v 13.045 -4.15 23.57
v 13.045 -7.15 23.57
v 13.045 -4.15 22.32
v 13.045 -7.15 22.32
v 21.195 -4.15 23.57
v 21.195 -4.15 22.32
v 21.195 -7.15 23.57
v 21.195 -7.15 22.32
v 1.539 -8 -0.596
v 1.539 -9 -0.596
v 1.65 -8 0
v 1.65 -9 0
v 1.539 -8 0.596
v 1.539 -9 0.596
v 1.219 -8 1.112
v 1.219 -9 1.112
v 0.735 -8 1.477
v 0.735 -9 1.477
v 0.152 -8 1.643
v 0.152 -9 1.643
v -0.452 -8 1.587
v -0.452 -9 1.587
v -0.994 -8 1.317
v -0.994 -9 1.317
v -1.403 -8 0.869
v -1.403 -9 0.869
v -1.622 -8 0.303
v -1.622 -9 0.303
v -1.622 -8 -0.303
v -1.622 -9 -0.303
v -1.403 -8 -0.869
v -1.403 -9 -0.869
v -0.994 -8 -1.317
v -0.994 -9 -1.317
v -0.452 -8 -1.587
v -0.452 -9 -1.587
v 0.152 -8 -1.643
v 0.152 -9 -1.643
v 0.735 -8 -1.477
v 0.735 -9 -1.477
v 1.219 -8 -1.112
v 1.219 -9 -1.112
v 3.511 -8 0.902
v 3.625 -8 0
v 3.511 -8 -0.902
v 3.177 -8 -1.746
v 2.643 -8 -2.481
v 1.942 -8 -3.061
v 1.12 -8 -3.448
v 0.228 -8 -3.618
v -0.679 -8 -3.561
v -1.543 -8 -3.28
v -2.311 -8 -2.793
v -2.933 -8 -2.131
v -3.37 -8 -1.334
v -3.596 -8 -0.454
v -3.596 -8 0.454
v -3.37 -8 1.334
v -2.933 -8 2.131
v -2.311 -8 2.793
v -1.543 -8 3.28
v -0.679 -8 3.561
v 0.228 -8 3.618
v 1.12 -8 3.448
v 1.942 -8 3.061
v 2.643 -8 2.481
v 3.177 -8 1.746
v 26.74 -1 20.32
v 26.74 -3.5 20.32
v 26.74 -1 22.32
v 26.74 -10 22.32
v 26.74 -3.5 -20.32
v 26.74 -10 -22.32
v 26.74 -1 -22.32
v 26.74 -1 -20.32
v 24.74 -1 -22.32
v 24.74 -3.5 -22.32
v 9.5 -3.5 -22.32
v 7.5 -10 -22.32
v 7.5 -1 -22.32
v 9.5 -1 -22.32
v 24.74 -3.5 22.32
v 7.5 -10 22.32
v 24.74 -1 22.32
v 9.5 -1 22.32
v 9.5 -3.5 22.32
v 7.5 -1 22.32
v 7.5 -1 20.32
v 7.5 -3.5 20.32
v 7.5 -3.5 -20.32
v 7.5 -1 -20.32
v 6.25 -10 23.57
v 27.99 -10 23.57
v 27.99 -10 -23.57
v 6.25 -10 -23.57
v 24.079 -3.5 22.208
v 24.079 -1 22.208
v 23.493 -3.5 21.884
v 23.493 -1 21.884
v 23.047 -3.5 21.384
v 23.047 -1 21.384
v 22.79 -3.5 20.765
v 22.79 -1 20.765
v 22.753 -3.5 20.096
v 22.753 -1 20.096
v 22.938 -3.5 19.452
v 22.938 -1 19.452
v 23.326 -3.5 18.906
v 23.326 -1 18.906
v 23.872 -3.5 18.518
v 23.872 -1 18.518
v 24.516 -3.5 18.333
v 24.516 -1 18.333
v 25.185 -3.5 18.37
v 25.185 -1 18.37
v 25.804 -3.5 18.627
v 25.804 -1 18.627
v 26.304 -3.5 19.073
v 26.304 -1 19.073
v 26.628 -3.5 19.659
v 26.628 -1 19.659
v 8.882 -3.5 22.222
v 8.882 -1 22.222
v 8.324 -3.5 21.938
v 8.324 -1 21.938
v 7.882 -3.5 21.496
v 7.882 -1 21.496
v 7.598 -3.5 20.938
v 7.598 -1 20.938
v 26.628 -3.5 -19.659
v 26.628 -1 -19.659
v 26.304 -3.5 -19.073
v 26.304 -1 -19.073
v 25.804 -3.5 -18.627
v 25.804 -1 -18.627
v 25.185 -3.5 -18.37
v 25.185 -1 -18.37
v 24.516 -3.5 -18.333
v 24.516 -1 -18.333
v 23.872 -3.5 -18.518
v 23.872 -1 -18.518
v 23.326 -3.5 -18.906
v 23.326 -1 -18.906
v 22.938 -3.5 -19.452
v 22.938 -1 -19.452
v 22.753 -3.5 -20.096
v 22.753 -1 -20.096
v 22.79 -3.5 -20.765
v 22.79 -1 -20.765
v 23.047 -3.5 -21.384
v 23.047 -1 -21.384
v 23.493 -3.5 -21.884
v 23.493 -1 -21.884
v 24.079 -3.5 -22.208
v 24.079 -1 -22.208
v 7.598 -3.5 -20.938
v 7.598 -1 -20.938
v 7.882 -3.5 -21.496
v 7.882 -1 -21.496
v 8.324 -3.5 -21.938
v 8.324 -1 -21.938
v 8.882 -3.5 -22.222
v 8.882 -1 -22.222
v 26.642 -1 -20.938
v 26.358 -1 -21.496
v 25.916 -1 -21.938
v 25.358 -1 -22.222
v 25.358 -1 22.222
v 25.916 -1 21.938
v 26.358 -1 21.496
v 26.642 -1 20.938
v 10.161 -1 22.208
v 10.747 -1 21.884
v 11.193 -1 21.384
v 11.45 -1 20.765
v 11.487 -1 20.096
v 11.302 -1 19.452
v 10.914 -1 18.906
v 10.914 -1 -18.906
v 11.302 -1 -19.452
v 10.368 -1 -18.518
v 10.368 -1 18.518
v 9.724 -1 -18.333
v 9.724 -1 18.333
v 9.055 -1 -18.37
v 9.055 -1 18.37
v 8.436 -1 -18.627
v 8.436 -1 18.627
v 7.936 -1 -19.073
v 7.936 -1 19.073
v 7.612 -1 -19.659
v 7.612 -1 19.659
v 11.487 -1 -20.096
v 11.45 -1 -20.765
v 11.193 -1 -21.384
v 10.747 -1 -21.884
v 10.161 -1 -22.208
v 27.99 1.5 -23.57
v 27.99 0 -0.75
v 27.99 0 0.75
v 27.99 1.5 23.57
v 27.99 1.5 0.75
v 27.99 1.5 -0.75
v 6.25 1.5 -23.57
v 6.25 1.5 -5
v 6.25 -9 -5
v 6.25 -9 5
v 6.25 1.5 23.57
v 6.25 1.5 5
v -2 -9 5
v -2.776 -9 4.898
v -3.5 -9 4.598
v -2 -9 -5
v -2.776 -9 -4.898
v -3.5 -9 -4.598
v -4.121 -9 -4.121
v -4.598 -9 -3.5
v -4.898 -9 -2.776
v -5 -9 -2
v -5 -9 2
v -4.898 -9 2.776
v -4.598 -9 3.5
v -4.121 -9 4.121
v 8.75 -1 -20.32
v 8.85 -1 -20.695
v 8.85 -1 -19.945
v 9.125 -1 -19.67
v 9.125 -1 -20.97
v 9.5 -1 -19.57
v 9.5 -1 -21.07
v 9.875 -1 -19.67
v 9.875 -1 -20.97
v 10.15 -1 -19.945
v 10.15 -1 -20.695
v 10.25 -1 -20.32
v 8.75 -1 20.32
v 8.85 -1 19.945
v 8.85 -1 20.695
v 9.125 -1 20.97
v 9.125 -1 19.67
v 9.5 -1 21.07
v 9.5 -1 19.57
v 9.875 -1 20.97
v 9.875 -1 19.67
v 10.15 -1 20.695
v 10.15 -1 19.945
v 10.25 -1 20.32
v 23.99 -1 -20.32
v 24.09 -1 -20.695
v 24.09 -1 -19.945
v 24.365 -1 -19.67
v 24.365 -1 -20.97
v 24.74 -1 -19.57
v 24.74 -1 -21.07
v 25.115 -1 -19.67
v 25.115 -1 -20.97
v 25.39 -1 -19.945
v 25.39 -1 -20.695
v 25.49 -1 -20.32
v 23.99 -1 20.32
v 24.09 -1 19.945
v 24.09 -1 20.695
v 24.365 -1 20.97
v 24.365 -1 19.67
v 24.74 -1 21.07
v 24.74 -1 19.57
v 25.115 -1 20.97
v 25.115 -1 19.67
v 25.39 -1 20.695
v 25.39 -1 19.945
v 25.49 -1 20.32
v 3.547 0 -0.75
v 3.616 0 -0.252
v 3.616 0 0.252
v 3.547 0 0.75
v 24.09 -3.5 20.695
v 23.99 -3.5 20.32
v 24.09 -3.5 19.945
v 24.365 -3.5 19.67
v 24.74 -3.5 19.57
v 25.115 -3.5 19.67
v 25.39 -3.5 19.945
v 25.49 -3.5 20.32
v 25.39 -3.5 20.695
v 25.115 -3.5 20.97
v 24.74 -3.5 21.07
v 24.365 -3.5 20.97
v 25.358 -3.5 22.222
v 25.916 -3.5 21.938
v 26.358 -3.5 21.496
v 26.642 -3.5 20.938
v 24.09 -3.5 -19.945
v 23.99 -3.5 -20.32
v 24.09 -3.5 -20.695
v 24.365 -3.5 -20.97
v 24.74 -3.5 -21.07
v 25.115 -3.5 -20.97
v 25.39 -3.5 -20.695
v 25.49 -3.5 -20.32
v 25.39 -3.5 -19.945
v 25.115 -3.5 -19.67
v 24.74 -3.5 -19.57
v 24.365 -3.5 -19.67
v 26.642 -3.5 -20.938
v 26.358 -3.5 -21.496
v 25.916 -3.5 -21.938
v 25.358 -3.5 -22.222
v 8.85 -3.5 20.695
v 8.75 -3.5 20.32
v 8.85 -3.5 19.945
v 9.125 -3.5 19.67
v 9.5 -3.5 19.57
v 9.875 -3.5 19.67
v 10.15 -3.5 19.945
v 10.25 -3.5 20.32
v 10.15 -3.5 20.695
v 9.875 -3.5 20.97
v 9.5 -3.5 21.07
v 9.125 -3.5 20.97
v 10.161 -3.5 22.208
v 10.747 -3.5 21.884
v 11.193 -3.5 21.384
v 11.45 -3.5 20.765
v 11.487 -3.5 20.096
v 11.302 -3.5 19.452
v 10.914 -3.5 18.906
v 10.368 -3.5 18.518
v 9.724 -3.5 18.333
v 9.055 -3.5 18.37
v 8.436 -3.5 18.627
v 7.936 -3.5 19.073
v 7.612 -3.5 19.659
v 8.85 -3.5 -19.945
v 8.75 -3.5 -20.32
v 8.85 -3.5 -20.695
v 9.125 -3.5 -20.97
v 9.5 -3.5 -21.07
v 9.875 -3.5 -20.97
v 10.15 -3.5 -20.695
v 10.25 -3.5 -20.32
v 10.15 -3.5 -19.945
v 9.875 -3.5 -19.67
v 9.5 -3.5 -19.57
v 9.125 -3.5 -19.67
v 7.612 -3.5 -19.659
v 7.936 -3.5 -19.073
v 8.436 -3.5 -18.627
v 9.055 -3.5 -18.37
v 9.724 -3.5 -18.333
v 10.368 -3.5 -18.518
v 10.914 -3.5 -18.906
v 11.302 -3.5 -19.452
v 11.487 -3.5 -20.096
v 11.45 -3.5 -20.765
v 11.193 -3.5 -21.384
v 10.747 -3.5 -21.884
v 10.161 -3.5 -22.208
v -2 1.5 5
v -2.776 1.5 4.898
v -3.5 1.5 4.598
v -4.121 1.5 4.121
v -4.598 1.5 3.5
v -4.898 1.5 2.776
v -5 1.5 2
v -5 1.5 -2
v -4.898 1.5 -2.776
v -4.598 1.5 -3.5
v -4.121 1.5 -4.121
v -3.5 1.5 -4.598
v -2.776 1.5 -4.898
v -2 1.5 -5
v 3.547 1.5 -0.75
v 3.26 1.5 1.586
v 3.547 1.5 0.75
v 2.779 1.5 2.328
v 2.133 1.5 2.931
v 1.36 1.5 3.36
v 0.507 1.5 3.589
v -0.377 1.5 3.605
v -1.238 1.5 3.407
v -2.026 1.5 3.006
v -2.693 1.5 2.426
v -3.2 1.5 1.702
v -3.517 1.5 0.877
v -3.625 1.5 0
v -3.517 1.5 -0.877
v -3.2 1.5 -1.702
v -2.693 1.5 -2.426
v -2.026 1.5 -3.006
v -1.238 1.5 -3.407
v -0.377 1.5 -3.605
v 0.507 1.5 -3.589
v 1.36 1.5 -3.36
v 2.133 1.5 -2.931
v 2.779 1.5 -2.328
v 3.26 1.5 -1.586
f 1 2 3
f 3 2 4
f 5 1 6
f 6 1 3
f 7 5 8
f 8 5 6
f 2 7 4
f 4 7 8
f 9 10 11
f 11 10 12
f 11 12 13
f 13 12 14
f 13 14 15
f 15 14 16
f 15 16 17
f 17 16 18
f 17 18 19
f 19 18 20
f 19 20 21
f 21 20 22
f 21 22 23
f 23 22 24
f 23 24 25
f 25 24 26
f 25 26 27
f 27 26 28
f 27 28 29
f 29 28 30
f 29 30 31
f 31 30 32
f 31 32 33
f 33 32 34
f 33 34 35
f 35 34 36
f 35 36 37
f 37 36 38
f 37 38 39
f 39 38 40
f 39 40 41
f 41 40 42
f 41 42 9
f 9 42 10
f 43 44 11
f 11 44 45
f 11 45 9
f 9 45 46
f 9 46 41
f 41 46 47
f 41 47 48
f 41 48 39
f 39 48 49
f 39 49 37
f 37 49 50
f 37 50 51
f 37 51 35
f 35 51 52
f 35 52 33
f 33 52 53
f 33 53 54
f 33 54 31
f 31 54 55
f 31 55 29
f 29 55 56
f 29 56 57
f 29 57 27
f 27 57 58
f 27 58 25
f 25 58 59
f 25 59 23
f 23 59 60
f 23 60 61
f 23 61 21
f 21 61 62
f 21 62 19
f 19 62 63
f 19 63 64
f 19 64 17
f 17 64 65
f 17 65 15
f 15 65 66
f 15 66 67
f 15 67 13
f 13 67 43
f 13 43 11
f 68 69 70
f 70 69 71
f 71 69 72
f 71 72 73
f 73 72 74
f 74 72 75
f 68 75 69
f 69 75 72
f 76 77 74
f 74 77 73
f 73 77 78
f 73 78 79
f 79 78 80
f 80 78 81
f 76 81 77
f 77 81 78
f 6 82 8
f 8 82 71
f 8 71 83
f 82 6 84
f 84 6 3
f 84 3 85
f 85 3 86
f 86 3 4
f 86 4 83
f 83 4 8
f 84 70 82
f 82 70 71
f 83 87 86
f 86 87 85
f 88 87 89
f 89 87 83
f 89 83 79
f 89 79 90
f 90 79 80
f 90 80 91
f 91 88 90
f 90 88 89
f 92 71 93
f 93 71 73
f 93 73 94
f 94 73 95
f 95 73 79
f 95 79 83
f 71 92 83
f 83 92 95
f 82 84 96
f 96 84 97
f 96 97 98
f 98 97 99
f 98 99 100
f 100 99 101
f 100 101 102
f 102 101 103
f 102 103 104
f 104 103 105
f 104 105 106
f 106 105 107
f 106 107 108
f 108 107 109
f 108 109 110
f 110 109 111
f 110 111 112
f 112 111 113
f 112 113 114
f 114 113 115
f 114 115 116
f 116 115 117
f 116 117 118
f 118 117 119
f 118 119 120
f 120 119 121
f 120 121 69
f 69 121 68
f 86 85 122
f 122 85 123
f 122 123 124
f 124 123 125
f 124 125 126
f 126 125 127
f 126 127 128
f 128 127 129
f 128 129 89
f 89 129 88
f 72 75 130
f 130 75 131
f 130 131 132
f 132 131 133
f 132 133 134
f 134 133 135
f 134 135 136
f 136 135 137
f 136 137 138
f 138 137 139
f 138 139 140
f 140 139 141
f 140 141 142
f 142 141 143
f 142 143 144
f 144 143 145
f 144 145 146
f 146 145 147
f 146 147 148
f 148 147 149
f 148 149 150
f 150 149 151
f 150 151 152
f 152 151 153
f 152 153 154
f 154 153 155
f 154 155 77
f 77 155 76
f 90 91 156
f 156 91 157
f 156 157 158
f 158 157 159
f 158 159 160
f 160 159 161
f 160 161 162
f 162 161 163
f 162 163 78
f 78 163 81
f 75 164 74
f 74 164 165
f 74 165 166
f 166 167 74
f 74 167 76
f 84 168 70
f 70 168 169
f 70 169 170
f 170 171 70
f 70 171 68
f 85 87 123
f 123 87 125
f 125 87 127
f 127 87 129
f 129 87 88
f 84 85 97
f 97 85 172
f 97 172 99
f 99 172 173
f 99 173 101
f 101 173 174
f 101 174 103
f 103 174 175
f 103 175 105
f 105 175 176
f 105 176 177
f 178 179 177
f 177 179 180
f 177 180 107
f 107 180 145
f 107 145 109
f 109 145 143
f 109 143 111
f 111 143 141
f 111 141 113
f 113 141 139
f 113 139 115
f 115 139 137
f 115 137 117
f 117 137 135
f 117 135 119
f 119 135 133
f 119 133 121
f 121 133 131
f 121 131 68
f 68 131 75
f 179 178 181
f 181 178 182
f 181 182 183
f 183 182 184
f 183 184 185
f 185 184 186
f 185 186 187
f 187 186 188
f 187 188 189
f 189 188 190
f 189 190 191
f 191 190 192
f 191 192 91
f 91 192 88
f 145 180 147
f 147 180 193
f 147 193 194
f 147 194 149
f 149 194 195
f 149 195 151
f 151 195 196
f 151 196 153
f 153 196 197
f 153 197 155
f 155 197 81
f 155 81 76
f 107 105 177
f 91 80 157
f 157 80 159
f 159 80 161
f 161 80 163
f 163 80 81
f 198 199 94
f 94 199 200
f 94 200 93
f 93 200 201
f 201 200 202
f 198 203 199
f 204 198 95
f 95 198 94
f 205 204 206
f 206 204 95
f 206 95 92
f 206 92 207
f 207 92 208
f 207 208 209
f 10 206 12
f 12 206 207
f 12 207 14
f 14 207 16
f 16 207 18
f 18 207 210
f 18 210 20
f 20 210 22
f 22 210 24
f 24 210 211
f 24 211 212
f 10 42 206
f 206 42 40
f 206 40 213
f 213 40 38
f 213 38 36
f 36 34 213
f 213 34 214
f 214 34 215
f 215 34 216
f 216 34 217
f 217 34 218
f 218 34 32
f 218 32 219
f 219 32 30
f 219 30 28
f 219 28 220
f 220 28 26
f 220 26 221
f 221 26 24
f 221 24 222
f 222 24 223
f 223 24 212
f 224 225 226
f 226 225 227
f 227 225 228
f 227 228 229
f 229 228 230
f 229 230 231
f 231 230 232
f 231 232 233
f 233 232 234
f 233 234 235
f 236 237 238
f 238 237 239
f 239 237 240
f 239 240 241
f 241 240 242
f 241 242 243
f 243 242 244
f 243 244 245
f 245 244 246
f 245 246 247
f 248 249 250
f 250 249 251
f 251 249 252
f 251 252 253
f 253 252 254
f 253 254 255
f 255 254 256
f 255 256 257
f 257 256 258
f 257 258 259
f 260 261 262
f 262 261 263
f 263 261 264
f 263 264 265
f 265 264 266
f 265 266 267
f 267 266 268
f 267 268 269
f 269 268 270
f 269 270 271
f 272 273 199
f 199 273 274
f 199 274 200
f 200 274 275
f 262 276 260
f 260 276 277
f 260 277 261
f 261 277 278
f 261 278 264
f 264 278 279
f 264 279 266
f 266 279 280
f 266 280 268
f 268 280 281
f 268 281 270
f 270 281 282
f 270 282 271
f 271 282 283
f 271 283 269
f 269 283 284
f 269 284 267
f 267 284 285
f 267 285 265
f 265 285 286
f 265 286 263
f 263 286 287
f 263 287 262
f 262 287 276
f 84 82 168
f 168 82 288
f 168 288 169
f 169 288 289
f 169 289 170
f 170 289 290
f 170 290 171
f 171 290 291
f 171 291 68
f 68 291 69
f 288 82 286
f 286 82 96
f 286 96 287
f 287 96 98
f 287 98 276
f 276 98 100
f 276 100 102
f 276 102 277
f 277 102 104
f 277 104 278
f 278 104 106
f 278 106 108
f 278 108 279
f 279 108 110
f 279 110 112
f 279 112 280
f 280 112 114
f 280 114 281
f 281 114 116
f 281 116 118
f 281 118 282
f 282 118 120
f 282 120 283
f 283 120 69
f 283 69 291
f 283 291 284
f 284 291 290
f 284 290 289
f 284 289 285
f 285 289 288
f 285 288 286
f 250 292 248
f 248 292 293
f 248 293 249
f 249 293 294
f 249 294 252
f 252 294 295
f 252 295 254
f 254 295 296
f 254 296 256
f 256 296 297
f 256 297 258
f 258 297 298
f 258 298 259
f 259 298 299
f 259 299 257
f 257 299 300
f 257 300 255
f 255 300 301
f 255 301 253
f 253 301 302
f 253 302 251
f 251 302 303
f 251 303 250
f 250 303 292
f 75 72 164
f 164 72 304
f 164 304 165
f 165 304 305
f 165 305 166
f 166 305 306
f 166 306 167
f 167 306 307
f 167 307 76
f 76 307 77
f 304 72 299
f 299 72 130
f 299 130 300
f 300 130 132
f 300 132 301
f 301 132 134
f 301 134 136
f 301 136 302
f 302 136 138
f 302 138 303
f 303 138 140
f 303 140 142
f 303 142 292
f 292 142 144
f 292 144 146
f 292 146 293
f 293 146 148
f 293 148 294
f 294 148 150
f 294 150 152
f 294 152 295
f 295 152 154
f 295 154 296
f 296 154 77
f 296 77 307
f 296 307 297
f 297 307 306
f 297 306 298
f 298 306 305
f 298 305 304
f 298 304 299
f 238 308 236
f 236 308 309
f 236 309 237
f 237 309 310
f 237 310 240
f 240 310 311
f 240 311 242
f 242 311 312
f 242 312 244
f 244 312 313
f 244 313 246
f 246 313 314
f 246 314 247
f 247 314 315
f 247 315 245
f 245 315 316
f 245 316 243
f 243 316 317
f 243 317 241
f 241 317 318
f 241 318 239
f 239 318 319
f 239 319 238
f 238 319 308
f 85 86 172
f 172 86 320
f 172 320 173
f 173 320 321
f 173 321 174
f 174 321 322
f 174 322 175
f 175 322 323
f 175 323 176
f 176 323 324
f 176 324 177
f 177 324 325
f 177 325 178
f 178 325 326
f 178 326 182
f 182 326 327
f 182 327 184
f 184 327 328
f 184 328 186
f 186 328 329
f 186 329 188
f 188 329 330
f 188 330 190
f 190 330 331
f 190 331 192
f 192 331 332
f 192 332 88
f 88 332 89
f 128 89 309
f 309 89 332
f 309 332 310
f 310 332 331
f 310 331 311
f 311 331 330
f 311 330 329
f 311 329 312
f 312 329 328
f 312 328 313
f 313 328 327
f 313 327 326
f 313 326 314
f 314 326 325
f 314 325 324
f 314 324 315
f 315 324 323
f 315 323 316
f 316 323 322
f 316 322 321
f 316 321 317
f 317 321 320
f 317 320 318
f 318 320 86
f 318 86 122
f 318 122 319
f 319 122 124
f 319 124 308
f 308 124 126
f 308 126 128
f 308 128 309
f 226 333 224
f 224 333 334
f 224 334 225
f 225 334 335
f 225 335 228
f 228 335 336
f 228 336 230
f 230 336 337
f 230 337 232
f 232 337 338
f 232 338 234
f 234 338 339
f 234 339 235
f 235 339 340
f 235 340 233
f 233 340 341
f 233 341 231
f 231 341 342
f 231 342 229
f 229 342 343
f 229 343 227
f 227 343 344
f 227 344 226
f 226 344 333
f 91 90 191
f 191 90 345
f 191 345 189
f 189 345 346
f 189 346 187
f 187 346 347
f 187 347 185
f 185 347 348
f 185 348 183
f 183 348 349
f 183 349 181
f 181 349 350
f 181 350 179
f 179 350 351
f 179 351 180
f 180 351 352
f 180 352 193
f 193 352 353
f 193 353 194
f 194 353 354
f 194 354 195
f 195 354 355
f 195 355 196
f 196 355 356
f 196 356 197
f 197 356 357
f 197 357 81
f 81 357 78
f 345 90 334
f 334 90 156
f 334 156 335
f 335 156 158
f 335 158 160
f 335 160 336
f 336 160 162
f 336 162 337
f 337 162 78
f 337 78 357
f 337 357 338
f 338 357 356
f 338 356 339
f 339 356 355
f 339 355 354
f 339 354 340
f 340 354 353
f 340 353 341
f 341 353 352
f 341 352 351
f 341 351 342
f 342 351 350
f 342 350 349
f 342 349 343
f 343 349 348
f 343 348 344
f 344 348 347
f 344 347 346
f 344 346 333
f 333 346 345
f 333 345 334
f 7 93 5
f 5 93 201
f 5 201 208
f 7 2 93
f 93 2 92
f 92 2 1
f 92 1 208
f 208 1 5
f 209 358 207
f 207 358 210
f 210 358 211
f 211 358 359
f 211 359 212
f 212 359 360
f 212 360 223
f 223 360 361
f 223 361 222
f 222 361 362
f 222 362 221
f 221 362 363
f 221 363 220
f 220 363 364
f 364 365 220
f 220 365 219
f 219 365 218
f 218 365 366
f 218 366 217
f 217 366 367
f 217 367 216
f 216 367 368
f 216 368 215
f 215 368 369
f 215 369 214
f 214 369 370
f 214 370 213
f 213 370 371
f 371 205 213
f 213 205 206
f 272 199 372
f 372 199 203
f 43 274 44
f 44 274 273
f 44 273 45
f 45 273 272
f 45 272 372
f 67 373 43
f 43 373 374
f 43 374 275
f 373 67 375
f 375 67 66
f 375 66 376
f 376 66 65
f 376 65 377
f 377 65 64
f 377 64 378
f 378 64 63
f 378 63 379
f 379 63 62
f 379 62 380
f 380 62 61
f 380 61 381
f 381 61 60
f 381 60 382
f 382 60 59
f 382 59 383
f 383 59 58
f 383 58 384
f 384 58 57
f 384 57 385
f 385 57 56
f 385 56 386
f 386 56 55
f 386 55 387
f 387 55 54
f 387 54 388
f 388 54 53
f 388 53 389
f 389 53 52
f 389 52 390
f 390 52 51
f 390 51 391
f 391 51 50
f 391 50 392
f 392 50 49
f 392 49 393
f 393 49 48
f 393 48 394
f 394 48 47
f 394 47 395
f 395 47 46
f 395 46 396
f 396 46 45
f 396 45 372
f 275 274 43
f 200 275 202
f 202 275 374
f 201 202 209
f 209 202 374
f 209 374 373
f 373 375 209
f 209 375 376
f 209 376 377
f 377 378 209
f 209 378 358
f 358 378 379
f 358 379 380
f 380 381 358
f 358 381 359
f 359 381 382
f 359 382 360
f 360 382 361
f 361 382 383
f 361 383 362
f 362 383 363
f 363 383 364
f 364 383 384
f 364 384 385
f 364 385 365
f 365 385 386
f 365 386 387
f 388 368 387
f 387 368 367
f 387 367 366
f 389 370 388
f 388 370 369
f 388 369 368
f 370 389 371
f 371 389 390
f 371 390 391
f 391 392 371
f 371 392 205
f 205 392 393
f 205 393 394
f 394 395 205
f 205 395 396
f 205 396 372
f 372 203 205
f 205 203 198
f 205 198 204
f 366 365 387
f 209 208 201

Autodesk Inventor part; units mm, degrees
ref_plane "YZ Plane" through (0, 0, 0) normal (1, 0, 0) x (0, 1, 0)
ref_plane "XZ Plane" through (0, 0, 0) normal (0, 1, 0) x (-1, 0, 0)
ref_plane "XY Plane" through (0, 0, 0) normal (0, 0, 1) x (1, 0, 0)
sketch "Sketch1" plane through (0, 0, 0) normal (0, 1, 0) x (-1, 0, 0)
  line L0 (-7.5, 22.32) -> (-26.74, 22.32)
  line L1 (-26.74, 22.32) -> (-26.74, -22.32)
  line L2 (-26.74, -22.32) -> (-7.5, -22.32)
  line L3 (-7.5, -22.32) -> (-7.5, 22.32)
  line L4 (-7.5, 5) -> (2, 5)
  line L5 (5, 2) -> (5, -2)
  line L6 (2, -5) -> (-7.5, -5)
  line L7 (-7.5, -5) -> (-7.5, 5)
  line L8 (0, 0.75) -> (-7.5, 0.75)
  line L9 (-7.5, 0.75) -> (-7.5, -0.75)
  line L10 (-7.5, -0.75) -> (0, -0.75)
  line L11 (0, -0.75) -> (0, 0.75)
  circle A0 centre (0, 0) radius 3.625
  arc A1 (5, 2) -> (2, 5) centre (2, 2) ccw
  arc A2 (2, -5) -> (5, -2) centre (2, -2) ccw
  circle A3 centre (0, 0) radius 1.65
  line L12 (-9.5, 20.32) -> (-24.74, 20.32) construction
  line L13 (-24.74, 20.32) -> (-24.74, -20.32) construction
  line L14 (-24.74, -20.32) -> (-9.5, -20.32) construction
  line L15 (-9.5, -20.32) -> (-9.5, 20.32) construction
  circle A4 centre (-9.5, 20.32) radius 2
  circle A5 centre (-9.5, 20.32) radius 0.75
  circle A6 centre (-9.5, -20.32) radius 2
  circle A7 centre (-9.5, -20.32) radius 0.75
  circle A8 centre (-24.74, -20.32) radius 2
  circle A9 centre (-24.74, -20.32) radius 0.75
  circle A10 centre (-24.74, 20.32) radius 2
  circle A11 centre (-24.74, 20.32) radius 0.75
  line L16 (-27.99, -23.57) -> (-6.25, -23.57)
  line L17 (-6.25, -23.57) -> (-6.25, 23.57)
  line L18 (-6.25, 23.57) -> (-27.99, 23.57)
  line L19 (-27.99, 23.57) -> (-27.99, -23.57)
  line L20 (-7.5, 0.75) -> (-27.99, 0.75)
  line L21 (-27.99, 0.75) -> (-27.99, -0.75)
  line L22 (-27.99, -0.75) -> (-7.5, -0.75)
  line L23 (-7.5, -0.75) -> (-7.5, 0.75)
  point P0 (-6.25, -5)
  point P1 (-6.25, 5)
  point P2 (-3.5466, 0.75)
  point P3 (-3.5466, -0.75)
  point P4 (-27.99, 0)
  dimension "d2" = 10
  dimension "d3" = 12.5
  dimension "d4" = 7.25
  dimension "d5" = 1.5
  dimension "d6" = 0.75
  dimension "d7" = 0
  dimension "d8" = 5
  dimension "d10" = 5
  dimension "d11" = 3
  dimension "d12" = 3.3
  dimension "d13" = 40.64
  dimension "d14" = 15.24
  dimension "d15" = 1.5
  dimension "d16" = 4
  dimension "d17" = 1.25
  dimension "d18" = 1.25
  dimension "d19" = 1.25
  dimension "d20" = 1.25
  dimension "d21" = 20.32
  dimension "d25" = 0
extrude "Extrusion1" add sketch "Sketch1" along normal blind 1.5 contours L3 A4 L0 | L0 L1 L20 L19 L18 L17 L4 L3 | A4 L3 L20 L1 A10 L0 | A4 | A10 L1 L0 | A10 | L4 L17 L8 L3 | L4 A1 L5 A2 L6 L17 L10 A0 L8 | L10 L17 L6 L3 | L3 A6 L2 A8 L1 L22 | L1 L2 L3 L6 L17 L16 L19 L22 | A8 L2 L1 | A8 | A6 | L3 L2 A6 | A5 | A7 | A9 | A11
extrude "Extrusion2" add sketch "Sketch1" against normal blind 3.5 contours A4 | A10 | A8 | A6
extrude "Extrusion3" add sketch "Sketch1" against normal blind 1 contours L3 A4 L0 | L0 L1 L20 L19 L18 L17 L4 L3 | A4 L3 L20 L1 A10 L0 | A4 | A10 L1 L0 | A10 | L4 L17 L8 L3 | L8 L17 L10 L3 | L3 L22 L1 L20 | L1 L22 L19 L20 | L10 L17 L6 L3 | L3 A6 L2 A8 L1 L22 | L1 L2 L3 L6 L17 L16 L19 L22 | A8 L2 L1 | A8 | A6 | L3 L2 A6 | A5 | A7 | A9 | A11
extrude "Extrusion4" add sketch "Sketch1" against normal blind 9 contours L4 A1 L5 A2 L6 L17 L10 A0 L8 | L8 A0 L10 L17
extrude "Extrusion5" add sketch "Sketch1" against normal blind 10 contours L0 L1 L20 L19 L18 L17 L4 L3 | L4 L17 L8 L3 | L8 L17 L10 L3 | L1 L22 L19 L20 | L10 L17 L6 L3 | L1 L2 L3 L6 L17 L16 L19 L22
sketch "Sketch2" plane through (0, -9, 0) normal (0, -1, 0) x (1, 0, 0)
  circle A0 centre (0, 0) radius 3.625 projected
  circle A1 centre (0, 0) radius 1.65 projected
extrude "Extrusion6" add sketch "Sketch2" against normal blind 1
sketch "Sketch3" plane through (26.74, -10, 22.32) normal (0, 0, -1) x (-1, 0, 0)
  line L0 (17.99, 6.5) -> (16.49, 6.5) projected
  line L1 (2.75, 6.5) -> (1.25, 6.5) projected
  line L2 (13.695, 2.85) -> (5.545, 2.85)
  line L3 (5.545, 2.85) -> (5.545, 5.85)
  line L4 (5.545, 5.85) -> (13.695, 5.85)
  line L5 (13.695, 5.85) -> (13.695, 2.85)
  line L6 (-1.25, 0) -> (-1.25, 11.5) projected
  line L7 (20.49, 0) -> (20.49, 11.5) projected
  point P0 (26.74, 10)
  point P1 (13.695, 4.35)
  point P2 (2, 6.5)
  dimension "d36" = 8.15
  dimension "d37" = 3
  dimension "d38" = 21.74
  dimension "d39" = 6.795
  dimension "d42" = 0.65
extrude "Extrusion7" cut sketch "Sketch3" against normal through all
equation "\"d2\" = 2 * d8"
equation "\"d6\" = 0.5 * d5"
equation "\"d10\" = d8"
equation "\"d18\" = d17"
equation "\"d19\" = d18"
equation "\"d20\" = d18"
equation "\"d21\" = 0.5 * d13"
equation "\"d39\" = -0.5 * d36 + 0.5 * d38"
properties part number "Arduino Mount"
